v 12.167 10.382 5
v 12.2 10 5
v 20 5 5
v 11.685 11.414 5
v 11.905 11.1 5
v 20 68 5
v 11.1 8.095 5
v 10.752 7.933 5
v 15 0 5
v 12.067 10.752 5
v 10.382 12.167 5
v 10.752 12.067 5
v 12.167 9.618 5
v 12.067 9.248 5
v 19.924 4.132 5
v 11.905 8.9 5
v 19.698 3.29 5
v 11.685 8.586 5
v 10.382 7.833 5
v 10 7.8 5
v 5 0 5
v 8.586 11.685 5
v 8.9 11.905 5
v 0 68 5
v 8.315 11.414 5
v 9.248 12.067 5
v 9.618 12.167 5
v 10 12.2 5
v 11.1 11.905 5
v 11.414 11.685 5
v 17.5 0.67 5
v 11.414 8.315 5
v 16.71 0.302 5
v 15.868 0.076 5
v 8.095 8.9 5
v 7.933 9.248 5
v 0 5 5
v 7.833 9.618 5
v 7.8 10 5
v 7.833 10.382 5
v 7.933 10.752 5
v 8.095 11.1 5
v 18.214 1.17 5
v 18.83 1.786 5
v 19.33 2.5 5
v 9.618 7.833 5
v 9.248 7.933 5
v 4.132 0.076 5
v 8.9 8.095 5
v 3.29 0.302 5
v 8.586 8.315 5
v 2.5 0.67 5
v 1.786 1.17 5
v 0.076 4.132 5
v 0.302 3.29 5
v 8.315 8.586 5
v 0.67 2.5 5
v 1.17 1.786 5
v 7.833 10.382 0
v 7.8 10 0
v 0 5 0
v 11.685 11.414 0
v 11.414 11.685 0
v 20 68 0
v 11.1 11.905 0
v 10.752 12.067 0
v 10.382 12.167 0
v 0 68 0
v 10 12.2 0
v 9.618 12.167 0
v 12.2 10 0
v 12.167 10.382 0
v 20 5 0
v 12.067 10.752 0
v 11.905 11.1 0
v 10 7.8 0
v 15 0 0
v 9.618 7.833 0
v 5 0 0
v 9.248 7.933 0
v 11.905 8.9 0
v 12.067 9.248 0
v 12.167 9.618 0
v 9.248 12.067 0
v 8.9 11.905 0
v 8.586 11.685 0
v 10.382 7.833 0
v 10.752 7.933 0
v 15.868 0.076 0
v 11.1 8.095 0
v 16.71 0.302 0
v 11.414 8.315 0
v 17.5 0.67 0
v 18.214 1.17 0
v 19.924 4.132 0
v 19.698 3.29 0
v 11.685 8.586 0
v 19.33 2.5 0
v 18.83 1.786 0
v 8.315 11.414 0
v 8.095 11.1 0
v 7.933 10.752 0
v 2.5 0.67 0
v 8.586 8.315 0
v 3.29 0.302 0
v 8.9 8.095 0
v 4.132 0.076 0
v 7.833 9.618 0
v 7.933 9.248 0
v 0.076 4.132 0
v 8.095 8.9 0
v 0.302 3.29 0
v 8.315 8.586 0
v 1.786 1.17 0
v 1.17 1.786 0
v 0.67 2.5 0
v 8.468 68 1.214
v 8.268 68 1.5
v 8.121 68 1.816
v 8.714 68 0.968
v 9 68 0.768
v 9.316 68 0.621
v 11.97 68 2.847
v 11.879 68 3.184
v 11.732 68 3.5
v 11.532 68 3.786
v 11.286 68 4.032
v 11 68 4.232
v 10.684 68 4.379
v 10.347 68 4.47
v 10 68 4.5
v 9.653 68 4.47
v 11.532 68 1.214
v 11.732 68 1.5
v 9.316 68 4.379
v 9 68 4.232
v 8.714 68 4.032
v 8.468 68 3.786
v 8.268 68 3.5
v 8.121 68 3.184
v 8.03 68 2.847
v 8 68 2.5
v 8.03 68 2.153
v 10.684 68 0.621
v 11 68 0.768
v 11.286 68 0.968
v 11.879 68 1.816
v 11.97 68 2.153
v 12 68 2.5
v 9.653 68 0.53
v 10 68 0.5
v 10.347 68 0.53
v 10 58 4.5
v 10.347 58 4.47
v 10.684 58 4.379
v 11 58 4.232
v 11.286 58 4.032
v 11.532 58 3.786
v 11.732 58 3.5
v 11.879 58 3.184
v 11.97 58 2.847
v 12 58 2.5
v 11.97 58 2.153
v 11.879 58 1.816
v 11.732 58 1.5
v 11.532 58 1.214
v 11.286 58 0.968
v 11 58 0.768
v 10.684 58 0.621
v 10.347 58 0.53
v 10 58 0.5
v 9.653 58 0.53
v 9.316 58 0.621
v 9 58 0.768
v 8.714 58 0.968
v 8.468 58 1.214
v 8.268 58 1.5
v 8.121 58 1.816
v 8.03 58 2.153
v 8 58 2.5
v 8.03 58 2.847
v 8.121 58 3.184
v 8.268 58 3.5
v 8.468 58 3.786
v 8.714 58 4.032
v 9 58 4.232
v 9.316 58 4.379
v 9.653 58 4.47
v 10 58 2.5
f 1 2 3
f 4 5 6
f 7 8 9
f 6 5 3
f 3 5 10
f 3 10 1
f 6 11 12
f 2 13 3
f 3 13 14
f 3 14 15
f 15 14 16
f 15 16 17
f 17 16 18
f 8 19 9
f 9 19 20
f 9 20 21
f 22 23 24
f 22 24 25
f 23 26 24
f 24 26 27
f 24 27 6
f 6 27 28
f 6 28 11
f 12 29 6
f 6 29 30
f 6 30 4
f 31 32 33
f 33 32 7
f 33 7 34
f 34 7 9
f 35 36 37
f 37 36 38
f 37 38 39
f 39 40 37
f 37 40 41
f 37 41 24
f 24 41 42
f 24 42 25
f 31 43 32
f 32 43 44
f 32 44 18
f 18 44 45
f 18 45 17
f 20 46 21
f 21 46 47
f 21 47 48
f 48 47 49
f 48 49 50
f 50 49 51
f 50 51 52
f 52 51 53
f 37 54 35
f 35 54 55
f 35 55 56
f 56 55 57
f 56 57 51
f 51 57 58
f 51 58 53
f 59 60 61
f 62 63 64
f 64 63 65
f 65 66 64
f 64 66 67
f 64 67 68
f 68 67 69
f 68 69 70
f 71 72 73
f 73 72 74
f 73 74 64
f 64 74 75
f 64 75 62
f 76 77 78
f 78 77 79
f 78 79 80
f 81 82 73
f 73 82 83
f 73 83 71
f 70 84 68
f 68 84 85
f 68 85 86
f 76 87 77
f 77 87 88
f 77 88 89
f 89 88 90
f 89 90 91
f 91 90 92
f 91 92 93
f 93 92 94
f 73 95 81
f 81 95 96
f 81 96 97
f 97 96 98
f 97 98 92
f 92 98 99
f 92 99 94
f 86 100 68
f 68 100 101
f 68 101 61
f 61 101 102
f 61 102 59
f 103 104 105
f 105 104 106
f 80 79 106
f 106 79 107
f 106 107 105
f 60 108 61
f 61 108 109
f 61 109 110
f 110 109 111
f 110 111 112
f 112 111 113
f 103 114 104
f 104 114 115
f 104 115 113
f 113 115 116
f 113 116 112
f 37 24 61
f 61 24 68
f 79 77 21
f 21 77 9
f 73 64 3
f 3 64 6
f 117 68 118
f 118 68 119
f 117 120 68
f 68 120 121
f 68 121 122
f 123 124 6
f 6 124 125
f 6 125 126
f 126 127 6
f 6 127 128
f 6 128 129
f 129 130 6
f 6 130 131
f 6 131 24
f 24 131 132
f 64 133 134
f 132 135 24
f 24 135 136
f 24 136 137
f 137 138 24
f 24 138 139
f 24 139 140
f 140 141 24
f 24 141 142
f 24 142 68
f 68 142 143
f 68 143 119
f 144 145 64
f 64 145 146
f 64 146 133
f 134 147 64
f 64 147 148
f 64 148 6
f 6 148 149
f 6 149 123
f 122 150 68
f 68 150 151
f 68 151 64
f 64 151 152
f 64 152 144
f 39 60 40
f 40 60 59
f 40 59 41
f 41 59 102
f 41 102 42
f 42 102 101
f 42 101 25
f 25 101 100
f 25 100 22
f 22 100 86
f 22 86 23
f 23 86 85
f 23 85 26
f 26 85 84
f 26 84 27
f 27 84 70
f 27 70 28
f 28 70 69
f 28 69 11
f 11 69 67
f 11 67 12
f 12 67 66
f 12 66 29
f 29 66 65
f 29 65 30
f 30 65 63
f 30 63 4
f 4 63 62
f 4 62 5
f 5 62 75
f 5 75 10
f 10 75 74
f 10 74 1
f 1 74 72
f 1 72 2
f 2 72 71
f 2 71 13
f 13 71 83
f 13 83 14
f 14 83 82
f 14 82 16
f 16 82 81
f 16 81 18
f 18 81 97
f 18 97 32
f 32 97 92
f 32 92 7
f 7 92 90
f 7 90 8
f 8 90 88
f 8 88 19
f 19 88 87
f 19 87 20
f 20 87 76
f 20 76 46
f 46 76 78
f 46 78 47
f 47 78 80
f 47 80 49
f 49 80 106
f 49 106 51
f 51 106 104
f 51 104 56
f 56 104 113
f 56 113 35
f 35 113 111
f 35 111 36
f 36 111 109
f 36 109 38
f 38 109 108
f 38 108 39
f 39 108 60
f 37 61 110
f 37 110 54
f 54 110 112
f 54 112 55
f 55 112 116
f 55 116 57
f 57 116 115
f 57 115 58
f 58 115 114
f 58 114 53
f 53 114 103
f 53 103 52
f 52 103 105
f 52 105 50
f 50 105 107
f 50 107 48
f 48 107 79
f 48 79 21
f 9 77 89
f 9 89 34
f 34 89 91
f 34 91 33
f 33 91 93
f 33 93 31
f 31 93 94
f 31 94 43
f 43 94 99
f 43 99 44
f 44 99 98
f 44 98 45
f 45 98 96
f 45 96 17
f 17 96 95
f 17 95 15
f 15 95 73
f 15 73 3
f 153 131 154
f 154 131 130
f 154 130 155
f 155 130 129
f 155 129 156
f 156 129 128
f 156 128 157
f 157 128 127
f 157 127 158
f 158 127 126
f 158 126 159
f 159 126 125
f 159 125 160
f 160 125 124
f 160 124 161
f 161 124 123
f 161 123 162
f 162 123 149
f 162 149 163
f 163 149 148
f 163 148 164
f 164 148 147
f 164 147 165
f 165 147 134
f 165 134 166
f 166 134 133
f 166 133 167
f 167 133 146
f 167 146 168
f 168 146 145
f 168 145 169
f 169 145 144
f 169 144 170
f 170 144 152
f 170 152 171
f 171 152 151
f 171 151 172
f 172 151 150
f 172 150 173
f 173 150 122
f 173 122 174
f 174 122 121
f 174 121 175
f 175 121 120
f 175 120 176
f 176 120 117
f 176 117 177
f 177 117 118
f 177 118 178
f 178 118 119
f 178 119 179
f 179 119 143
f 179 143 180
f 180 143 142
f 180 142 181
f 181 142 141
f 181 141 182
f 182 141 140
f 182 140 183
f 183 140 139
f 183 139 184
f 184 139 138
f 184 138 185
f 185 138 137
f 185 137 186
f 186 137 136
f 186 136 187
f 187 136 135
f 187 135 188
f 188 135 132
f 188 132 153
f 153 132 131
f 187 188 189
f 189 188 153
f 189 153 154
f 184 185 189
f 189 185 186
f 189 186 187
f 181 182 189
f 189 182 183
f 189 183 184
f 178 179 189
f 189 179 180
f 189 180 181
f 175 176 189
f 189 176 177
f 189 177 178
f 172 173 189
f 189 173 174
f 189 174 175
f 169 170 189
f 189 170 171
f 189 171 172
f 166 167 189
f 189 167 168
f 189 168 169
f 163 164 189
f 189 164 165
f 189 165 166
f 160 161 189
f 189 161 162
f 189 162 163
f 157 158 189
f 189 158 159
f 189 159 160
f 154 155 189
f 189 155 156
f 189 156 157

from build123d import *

# Parameters (mm, degrees)
SKETCH_1_W          = 20
SKETCH_1_H          = 68
SKETCH_1_R          = 2.2
EXTRUDE_1_DEPTH     = 5
FILLET_1_R          = 5
SKETCH_2_R          = 2
CUT_EXTRUDE_1_DEPTH = 10


with BuildPart() as part:
    # ｽｹｯﾁ1 → ﾎﾞｽ - 押し出し1 (new body)
    with BuildSketch(Plane.XY):
        with Locations((10, 34)):
            Rectangle(SKETCH_1_W, SKETCH_1_H)
        with Locations((10, 10)):
            Circle(SKETCH_1_R, mode=Mode.SUBTRACT)
    extrude(amount=EXTRUDE_1_DEPTH)

    # ﾌｨﾚｯﾄ1
    fillet_1_edges = [part.edges().sort_by_distance(p)[0] for p in [
        (20, 0, 2.5),
        (0, 0, 2.5),
    ]]
    fillet(fillet_1_edges, radius=FILLET_1_R)

    # ｽｹｯﾁ2 → ｶｯﾄ - 押し出し1 (cut)
    with BuildSketch(Plane(origin=(0, 68, 0), x_dir=(1, 0, 0), z_dir=(0, 1, 0))):
        with Locations(Location((10, -2.5, 0), (0, 0, 270))):
            Circle(SKETCH_2_R)
    extrude(amount=-CUT_EXTRUDE_1_DEPTH, mode=Mode.SUBTRACT)


solid = part.part
